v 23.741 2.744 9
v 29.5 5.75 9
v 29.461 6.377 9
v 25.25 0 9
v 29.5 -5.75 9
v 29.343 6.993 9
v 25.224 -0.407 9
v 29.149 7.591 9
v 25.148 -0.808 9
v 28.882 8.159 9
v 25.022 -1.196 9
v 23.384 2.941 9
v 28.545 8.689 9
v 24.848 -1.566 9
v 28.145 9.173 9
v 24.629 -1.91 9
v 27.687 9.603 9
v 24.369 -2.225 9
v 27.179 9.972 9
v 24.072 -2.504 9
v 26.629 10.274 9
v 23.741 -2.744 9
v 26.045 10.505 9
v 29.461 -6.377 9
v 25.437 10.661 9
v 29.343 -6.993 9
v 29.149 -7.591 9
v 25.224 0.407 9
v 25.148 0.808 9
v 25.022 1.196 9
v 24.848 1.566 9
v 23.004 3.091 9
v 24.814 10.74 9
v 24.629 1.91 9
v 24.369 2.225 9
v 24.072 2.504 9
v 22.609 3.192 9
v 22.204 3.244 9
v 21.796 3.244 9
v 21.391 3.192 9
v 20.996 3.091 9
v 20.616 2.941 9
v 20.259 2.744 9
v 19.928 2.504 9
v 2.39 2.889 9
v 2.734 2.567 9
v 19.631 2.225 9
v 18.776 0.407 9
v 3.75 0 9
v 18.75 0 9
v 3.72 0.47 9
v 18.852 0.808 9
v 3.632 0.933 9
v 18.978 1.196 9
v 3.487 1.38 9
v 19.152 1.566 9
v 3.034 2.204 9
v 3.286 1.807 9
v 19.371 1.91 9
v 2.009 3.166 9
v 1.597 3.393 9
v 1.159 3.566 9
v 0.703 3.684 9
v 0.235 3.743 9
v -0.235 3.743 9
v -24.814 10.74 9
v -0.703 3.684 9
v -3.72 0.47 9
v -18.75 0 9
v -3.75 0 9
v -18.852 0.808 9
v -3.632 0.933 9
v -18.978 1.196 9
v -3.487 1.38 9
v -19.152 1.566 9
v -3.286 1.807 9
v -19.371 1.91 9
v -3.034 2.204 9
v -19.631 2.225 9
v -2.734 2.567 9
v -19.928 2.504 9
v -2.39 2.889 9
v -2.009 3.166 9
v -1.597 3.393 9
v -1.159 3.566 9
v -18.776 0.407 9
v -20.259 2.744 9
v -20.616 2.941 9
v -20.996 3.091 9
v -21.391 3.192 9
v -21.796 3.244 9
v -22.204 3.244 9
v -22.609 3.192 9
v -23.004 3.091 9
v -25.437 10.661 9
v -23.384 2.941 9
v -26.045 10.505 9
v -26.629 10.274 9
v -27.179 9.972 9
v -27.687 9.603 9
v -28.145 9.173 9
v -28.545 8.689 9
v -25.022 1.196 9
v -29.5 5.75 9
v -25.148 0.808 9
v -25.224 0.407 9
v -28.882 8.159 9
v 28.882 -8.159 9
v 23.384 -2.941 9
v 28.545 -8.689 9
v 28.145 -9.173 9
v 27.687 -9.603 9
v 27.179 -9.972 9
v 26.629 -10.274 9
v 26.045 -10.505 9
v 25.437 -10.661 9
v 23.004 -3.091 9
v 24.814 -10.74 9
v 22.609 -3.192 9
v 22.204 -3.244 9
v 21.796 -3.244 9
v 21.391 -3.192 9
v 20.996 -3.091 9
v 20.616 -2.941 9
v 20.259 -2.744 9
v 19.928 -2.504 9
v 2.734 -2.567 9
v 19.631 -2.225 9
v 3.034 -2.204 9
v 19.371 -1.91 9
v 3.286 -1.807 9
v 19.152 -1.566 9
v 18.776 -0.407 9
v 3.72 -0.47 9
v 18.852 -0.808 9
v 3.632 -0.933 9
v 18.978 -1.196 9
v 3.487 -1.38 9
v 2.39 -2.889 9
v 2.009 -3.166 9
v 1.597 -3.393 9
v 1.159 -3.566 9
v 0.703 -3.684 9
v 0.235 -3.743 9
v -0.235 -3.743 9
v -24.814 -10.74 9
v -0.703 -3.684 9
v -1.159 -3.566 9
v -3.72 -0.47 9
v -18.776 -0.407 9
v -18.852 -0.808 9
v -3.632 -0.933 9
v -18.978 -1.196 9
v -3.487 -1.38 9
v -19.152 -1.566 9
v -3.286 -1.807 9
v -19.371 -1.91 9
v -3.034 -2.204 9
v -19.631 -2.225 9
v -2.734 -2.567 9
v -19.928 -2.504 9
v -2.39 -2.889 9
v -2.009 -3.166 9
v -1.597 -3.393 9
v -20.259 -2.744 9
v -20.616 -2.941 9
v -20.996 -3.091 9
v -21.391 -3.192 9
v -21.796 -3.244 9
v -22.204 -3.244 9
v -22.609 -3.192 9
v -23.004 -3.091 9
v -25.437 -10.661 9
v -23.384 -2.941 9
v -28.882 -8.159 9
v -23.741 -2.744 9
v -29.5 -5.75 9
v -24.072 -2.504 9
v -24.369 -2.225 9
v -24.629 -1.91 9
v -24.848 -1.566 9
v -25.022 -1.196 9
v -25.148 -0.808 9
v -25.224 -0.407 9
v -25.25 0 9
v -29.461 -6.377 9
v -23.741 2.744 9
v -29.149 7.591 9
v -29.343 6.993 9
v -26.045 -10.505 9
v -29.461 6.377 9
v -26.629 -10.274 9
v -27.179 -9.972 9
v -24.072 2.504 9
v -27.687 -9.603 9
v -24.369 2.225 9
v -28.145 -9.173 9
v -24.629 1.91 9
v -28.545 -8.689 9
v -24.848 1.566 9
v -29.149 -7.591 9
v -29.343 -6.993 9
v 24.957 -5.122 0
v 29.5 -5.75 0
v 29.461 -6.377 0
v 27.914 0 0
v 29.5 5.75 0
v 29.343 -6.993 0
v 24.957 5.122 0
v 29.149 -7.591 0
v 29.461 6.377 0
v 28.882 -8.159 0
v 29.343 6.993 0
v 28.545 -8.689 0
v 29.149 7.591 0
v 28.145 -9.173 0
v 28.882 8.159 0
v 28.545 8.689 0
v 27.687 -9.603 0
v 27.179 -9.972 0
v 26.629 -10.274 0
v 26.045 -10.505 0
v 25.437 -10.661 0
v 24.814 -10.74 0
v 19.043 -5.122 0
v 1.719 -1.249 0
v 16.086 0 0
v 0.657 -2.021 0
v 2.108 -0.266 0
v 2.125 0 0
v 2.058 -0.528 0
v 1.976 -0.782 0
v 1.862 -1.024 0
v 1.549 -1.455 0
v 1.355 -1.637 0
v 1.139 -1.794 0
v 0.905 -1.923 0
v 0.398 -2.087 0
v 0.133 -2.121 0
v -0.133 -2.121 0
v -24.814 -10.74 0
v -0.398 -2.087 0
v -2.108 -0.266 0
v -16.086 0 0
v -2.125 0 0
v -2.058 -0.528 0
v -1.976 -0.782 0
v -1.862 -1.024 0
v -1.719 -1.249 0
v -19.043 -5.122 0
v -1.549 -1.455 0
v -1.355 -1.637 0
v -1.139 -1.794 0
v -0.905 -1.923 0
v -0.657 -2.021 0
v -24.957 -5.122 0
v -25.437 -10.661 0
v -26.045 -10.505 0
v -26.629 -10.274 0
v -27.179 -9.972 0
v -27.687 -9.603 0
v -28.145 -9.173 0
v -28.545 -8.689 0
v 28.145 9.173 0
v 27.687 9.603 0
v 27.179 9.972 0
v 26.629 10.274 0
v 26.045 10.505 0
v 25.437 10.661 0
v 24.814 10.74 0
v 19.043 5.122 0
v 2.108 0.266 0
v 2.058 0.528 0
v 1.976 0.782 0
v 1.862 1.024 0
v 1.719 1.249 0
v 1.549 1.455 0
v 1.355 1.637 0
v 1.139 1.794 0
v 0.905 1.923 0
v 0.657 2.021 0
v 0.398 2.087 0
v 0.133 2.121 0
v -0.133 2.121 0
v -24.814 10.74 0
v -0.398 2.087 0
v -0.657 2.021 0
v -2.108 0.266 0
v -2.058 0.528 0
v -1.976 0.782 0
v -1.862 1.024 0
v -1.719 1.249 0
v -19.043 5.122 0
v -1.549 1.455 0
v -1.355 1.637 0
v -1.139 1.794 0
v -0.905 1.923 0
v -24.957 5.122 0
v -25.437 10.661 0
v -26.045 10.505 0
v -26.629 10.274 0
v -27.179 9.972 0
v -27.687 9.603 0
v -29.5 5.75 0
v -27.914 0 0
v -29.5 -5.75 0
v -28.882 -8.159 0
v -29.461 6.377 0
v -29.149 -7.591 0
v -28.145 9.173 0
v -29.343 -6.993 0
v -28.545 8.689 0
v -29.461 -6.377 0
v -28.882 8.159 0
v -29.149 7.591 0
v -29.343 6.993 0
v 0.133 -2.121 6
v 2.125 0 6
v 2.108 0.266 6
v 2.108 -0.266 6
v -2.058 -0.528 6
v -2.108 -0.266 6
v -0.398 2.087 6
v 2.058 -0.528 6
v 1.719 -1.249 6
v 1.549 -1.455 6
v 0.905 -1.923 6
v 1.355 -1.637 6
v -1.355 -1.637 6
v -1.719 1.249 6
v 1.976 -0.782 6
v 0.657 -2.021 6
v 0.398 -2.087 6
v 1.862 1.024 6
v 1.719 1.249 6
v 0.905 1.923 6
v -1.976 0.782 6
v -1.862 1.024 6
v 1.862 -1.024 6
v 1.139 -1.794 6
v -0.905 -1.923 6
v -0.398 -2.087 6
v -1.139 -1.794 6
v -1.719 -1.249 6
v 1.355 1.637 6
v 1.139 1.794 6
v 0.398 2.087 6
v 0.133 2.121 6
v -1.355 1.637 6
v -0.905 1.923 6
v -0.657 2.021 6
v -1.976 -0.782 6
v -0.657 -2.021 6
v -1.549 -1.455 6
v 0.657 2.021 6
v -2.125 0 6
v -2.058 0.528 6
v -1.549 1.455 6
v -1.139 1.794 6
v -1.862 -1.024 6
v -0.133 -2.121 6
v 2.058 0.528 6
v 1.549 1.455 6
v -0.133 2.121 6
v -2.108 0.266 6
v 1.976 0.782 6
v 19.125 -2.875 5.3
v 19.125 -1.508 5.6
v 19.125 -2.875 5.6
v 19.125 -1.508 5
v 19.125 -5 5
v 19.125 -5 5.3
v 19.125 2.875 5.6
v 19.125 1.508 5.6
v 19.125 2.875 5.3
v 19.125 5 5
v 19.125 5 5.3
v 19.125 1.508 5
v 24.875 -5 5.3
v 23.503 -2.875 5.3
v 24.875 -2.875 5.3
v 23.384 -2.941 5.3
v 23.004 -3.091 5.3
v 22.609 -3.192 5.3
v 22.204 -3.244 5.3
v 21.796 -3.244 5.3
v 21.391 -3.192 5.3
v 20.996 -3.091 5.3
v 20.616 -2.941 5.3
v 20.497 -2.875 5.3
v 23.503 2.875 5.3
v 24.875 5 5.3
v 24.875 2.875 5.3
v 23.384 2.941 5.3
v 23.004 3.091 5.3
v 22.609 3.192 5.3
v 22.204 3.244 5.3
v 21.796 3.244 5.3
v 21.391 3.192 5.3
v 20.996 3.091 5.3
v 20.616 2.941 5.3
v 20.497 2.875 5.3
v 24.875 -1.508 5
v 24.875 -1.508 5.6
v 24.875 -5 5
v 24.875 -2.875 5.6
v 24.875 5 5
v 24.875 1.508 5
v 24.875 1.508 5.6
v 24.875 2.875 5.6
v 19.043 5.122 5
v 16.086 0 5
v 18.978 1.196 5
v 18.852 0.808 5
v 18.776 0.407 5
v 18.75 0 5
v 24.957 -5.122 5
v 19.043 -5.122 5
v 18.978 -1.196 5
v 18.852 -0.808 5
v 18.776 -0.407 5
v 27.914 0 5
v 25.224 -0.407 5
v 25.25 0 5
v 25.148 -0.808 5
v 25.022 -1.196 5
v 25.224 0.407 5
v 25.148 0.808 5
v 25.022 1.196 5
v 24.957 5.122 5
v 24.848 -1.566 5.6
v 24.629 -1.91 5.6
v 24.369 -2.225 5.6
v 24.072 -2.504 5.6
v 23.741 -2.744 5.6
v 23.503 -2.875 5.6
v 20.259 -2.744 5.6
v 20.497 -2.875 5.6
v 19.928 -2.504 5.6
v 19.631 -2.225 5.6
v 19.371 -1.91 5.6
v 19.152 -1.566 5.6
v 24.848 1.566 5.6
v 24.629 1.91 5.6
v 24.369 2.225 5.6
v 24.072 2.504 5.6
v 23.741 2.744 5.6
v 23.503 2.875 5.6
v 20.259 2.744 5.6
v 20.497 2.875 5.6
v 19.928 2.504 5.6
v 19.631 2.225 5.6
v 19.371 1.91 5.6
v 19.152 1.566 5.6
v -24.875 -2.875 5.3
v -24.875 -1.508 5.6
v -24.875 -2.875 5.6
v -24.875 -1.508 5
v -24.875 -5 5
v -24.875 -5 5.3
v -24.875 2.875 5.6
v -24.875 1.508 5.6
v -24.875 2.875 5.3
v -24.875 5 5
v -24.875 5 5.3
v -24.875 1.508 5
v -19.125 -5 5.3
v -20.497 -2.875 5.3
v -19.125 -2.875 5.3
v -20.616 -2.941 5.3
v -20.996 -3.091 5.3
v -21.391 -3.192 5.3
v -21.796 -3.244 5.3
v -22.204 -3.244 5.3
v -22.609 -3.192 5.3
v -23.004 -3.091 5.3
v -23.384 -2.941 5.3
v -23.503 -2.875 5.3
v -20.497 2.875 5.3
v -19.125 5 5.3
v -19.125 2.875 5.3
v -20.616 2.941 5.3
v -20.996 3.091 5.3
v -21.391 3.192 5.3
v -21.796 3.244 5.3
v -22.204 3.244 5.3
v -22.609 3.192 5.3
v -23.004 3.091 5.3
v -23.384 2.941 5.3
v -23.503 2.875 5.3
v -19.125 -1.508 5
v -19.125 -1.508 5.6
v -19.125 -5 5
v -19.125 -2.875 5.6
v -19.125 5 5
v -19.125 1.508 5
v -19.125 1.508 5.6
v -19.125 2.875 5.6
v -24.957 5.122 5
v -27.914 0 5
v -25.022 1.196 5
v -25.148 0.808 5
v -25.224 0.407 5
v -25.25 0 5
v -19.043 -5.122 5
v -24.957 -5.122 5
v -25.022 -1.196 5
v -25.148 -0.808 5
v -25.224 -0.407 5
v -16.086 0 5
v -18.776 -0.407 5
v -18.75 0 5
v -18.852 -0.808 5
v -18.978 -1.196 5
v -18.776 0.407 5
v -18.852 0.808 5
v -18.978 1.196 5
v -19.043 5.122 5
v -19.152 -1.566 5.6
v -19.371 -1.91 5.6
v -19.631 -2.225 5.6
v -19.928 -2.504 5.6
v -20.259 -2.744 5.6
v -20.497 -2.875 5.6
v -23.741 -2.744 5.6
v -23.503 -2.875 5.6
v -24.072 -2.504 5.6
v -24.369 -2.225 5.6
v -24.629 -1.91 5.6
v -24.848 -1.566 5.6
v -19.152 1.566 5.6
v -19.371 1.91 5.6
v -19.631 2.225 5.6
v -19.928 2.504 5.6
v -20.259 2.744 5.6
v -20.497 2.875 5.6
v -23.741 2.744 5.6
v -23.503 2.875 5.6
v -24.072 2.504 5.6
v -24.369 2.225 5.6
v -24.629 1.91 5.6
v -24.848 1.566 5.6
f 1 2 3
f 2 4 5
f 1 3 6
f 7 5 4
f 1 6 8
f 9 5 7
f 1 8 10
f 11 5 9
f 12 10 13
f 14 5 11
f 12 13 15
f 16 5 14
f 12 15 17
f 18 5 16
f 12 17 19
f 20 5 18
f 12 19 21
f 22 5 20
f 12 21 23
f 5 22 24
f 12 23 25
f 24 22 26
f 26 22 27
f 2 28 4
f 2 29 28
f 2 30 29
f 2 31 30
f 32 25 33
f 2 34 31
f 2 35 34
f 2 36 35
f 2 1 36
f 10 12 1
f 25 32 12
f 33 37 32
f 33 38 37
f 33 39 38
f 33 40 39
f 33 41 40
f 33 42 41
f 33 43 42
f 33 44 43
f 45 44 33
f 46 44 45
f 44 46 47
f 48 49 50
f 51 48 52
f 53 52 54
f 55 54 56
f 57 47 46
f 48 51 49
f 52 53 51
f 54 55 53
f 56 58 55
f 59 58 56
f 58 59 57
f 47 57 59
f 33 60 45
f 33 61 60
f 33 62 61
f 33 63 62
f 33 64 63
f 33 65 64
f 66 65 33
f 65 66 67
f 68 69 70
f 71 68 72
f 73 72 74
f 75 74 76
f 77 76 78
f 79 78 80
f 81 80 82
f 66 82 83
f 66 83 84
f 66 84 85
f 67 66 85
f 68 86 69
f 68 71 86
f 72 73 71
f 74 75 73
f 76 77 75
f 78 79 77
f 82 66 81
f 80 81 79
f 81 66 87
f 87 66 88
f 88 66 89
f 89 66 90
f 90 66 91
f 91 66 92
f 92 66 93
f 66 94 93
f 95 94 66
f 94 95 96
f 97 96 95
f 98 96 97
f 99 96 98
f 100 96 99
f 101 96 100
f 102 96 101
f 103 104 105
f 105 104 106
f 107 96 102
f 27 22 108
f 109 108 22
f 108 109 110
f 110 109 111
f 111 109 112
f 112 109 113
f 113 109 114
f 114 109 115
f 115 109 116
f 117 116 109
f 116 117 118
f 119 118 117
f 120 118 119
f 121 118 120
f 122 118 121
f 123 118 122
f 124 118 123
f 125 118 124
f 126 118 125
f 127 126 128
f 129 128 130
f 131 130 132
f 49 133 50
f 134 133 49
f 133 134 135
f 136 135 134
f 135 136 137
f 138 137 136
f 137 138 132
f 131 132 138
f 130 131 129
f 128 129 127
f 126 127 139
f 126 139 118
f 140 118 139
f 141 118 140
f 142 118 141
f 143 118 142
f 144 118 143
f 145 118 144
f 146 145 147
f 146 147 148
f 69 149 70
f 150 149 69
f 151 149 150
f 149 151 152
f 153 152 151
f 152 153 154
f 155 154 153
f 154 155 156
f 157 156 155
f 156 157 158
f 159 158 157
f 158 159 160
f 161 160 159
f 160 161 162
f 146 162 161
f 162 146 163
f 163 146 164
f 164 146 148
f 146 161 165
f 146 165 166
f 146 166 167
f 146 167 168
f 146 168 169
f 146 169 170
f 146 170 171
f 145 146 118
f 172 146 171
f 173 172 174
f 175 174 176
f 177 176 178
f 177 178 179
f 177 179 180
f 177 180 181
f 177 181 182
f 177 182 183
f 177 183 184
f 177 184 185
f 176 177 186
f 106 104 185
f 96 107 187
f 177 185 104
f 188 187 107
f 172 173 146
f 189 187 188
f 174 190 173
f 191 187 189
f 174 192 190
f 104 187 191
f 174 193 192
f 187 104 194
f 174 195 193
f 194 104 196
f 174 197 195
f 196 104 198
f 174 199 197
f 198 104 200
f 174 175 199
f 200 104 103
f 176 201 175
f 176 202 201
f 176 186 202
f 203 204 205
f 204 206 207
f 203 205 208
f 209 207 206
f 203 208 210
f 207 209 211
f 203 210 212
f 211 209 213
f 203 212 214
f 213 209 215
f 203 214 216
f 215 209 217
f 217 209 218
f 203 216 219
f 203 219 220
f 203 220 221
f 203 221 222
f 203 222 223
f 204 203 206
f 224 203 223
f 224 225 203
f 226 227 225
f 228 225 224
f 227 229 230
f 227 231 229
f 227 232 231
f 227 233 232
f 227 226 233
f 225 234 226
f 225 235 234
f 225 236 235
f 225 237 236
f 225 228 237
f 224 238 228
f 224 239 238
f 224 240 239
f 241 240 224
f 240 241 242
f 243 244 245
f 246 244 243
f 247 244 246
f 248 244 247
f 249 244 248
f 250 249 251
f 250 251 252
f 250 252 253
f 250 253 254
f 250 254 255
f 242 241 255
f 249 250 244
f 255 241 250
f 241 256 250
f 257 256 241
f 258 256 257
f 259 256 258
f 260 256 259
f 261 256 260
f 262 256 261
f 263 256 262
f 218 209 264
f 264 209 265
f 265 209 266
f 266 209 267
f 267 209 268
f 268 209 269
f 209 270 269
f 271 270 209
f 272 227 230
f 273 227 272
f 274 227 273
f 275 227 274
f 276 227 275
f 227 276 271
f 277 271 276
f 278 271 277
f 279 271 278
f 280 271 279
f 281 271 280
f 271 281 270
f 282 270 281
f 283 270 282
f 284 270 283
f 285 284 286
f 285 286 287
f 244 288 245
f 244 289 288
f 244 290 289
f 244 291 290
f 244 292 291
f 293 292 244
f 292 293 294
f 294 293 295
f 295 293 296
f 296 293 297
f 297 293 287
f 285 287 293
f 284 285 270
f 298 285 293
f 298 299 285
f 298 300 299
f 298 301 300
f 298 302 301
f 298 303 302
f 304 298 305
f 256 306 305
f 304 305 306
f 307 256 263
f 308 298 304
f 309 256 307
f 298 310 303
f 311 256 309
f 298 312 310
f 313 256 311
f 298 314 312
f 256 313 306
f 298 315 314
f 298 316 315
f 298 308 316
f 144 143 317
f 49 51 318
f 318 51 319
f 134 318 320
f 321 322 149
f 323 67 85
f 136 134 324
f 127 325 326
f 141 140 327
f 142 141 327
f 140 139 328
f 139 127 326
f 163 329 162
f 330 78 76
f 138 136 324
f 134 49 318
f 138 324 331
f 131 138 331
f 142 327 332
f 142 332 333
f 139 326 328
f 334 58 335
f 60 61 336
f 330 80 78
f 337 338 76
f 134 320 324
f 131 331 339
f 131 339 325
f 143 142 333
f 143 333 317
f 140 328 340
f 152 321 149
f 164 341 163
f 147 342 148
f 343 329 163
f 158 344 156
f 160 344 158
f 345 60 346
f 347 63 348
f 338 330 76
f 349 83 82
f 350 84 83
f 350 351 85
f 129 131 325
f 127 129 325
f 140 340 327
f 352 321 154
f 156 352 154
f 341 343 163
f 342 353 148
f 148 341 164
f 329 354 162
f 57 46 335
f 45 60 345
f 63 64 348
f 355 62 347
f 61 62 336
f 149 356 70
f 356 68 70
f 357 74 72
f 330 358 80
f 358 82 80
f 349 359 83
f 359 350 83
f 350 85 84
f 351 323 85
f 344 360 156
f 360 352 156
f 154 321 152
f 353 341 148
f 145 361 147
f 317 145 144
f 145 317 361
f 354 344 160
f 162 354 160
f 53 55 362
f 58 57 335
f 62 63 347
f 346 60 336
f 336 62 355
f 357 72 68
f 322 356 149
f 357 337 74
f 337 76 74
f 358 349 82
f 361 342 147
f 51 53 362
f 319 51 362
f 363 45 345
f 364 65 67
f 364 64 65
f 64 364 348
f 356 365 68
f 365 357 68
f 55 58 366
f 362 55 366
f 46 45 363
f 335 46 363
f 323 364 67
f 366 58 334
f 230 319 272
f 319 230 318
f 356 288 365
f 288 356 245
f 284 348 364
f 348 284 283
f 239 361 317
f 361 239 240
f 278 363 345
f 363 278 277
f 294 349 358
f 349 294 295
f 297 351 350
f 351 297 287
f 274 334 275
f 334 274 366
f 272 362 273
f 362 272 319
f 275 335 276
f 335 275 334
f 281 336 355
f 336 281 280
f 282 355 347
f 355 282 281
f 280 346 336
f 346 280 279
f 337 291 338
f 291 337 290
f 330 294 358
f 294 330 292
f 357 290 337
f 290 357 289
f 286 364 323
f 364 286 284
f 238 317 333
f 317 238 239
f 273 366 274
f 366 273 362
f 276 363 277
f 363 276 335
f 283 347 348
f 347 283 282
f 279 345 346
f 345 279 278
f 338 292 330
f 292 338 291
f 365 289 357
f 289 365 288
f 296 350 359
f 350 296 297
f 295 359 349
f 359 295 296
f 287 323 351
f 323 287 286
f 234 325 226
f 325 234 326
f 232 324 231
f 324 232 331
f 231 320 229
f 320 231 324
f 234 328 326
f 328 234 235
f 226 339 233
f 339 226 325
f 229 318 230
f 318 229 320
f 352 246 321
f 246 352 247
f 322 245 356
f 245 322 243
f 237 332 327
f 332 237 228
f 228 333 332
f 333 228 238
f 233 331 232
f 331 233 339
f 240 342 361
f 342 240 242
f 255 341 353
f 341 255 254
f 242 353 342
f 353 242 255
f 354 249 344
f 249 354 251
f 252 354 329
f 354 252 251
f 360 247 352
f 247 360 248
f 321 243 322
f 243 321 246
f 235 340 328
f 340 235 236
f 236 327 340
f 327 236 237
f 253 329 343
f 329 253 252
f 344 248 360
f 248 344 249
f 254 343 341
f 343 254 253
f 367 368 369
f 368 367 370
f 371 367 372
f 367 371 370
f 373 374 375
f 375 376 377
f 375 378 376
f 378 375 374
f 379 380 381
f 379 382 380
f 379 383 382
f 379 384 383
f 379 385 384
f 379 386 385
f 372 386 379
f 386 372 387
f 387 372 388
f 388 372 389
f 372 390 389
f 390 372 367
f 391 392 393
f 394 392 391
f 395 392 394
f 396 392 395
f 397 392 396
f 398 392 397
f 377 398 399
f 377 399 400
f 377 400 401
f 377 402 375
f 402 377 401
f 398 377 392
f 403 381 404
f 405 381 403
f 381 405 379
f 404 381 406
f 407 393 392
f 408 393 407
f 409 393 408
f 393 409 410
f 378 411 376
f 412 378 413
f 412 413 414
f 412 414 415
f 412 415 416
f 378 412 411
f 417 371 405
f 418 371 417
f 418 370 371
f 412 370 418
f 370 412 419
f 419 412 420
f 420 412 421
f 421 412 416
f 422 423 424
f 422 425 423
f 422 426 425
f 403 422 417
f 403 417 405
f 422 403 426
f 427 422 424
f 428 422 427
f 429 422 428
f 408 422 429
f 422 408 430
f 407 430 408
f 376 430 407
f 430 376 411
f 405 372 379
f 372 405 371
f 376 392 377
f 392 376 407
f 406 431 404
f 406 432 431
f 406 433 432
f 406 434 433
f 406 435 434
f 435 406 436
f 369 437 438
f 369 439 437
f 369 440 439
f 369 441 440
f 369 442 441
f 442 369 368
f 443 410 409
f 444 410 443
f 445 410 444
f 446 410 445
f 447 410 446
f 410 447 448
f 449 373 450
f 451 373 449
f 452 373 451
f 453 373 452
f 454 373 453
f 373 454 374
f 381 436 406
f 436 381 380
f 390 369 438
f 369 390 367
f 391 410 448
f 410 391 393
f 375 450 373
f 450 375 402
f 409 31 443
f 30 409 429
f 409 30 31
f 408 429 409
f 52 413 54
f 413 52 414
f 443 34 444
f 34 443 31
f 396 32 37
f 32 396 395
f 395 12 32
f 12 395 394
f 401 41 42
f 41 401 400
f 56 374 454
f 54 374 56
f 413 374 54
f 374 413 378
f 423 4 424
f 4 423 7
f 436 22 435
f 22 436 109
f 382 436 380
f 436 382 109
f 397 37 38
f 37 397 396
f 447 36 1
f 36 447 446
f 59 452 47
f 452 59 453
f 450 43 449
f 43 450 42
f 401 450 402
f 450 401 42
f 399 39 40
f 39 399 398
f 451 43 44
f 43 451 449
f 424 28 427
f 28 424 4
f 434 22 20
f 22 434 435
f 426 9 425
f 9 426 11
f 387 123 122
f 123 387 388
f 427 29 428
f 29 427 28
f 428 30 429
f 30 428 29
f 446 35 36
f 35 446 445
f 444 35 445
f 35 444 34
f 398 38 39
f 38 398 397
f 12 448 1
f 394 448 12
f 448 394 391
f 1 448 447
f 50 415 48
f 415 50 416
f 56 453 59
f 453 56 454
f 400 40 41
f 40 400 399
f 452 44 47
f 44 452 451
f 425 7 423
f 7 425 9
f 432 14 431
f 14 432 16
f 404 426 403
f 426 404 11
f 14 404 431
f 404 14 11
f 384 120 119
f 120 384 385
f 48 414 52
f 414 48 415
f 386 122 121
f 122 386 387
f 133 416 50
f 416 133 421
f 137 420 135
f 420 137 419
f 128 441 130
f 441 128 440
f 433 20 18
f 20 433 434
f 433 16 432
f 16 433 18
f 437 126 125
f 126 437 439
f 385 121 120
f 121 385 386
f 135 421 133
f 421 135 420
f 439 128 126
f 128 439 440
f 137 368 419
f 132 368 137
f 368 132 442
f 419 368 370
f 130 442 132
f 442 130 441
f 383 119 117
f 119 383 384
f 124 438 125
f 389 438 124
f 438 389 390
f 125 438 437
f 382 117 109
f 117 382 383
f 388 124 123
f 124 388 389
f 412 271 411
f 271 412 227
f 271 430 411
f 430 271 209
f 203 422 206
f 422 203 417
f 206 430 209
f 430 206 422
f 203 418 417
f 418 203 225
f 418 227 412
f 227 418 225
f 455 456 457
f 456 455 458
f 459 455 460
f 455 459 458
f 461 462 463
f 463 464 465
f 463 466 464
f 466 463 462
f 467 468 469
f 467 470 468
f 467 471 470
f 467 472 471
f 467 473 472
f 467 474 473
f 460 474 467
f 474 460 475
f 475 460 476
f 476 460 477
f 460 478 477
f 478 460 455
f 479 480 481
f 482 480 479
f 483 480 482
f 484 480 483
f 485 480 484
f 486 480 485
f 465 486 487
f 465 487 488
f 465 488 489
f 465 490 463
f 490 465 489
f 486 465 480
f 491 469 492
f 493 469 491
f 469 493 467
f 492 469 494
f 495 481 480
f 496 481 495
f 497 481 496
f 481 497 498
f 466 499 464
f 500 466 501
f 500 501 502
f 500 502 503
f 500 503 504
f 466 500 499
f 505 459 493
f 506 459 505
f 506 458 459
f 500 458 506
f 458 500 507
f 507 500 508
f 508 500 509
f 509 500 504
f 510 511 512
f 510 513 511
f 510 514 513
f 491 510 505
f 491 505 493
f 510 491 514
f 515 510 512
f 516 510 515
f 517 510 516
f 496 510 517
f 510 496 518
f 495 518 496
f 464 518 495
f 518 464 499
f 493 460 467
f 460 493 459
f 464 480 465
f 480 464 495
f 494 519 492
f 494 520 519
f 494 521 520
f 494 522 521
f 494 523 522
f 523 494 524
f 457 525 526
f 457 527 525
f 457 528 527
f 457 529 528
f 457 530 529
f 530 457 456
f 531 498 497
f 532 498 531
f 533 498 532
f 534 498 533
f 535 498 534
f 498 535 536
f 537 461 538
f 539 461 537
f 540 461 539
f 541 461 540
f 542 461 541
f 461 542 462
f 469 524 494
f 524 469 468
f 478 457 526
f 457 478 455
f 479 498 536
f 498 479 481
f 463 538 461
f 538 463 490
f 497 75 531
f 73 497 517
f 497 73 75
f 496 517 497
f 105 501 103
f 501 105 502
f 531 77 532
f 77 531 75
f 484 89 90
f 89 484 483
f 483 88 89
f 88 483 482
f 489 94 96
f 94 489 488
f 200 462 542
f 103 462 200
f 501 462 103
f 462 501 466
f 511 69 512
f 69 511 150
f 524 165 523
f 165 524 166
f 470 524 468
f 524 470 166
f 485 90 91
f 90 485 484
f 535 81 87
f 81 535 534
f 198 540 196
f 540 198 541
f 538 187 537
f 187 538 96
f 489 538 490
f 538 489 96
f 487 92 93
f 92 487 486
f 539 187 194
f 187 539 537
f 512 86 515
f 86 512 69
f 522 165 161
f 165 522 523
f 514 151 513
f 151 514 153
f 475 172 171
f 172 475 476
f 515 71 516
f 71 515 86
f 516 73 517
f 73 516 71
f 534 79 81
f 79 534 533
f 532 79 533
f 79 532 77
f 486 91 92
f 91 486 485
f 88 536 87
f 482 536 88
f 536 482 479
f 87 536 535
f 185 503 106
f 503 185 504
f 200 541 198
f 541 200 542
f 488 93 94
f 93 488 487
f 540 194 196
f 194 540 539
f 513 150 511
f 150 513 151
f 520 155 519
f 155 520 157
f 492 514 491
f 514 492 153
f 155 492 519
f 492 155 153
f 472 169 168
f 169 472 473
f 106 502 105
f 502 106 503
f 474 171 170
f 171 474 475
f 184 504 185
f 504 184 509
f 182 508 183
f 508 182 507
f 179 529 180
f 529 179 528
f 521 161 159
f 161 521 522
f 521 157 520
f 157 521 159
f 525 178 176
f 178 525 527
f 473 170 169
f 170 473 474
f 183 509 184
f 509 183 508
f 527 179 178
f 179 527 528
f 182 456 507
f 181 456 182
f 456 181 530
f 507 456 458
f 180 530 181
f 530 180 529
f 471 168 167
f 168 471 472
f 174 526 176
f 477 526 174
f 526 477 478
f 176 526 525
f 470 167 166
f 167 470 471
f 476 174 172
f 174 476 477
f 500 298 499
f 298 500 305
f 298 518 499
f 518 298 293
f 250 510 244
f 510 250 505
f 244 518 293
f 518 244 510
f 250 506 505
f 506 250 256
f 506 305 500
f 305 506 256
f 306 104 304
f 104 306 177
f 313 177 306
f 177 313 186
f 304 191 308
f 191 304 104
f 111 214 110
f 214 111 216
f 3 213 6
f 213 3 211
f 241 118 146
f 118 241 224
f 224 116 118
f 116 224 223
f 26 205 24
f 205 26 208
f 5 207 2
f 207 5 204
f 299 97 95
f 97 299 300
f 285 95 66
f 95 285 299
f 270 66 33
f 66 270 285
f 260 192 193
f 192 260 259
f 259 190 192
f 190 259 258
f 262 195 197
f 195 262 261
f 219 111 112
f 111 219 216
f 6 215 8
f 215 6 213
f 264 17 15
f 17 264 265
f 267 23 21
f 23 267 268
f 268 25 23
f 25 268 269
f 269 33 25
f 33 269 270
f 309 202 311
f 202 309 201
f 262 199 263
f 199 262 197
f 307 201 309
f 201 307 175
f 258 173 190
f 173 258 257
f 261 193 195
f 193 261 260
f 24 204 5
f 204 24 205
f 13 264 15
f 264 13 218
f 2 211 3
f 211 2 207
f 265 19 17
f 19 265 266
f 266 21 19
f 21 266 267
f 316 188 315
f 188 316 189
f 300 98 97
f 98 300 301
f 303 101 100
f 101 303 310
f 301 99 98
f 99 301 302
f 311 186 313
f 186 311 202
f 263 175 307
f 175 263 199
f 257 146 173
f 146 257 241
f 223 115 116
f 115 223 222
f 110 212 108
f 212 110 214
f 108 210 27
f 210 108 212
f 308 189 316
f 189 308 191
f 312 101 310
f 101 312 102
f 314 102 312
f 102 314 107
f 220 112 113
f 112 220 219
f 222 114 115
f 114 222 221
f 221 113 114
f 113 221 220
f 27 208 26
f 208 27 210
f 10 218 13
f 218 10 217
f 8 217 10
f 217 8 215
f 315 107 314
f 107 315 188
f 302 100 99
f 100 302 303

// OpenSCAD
$fn = 50;


difference() {
	union() {
		hull() {
			translate(v = [-24.5000000000, 5.7500000000, 0]) {
				cylinder(h = 9, r = 5);
			}
			translate(v = [24.5000000000, 5.7500000000, 0]) {
				cylinder(h = 9, r = 5);
			}
			translate(v = [-24.5000000000, -5.7500000000, 0]) {
				cylinder(h = 9, r = 5);
			}
			translate(v = [24.5000000000, -5.7500000000, 0]) {
				cylinder(h = 9, r = 5);
			}
		}
	}
	union() {
		translate(v = [0, 0, 9]) {
			rotate(a = [0, 0, 0]) {
				difference() {
					union() {
						#translate(v = [0, 0, -9.0000000000]) {
							cylinder(h = 9, r = 2.0000000000);
						}
						#translate(v = [0, 0, -3]) {
							cylinder(h = 3, r1 = 2.1250000000, r2 = 3.7500000000);
						}
						#translate(v = [0, 0, -9.0000000000]) {
							cylinder(h = 9, r = 2.1250000000);
						}
						#translate(v = [0, 0, -9.0000000000]) {
							cylinder(h = 9, r = 2.0000000000);
						}
					}
					union();
				}
			}
		}
		translate(v = [22.0000000000, 0, 0]) {
			rotate(a = [0, 0, 0]) {
				difference() {
					union() {
						#translate(v = [-2.8750000000, -5.0000000000, -0.3000000000]) {
							cube(size = [5.7500000000, 10, 0.3000000000]);
						}
						#translate(v = [-2.8750000000, -2.8750000000, -0.6000000000]) {
							cube(size = [5.7500000000, 5.7500000000, 0.3000000000]);
						}
						#translate(v = [-2.8750000000, -5.0000000000, 5]) {
							cube(size = [5.7500000000, 10, 0.3000000000]);
						}
						#translate(v = [-2.8750000000, -2.8750000000, 5.3000000000]) {
							cube(size = [5.7500000000, 5.7500000000, 0.3000000000]);
						}
						#translate(v = [0, 0, -100.0000000000]) {
							cylinder(h = 200, r = 3.2500000000);
						}
						#linear_extrude(height = 5) {
							polygon(points = [[5.9142500000, 0.0000000000], [2.9571250000, 5.1218907443], [-2.9571250000, 5.1218907443], [-5.9142500000, 0.0000000000], [-2.9571250000, -5.1218907443], [2.9571250000, -5.1218907443]]);
						}
						#translate(v = [-2.8750000000, -5.0000000000, -0.3000000000]) {
							cube(size = [5.7500000000, 10, 0.3000000000]);
						}
						#translate(v = [-2.8750000000, -2.8750000000, -0.6000000000]) {
							cube(size = [5.7500000000, 5.7500000000, 0.3000000000]);
						}
						#translate(v = [-2.8750000000, -5.0000000000, 5]) {
							cube(size = [5.7500000000, 10, 0.3000000000]);
						}
						#translate(v = [-2.8750000000, -2.8750000000, 5.3000000000]) {
							cube(size = [5.7500000000, 5.7500000000, 0.3000000000]);
						}
						#translate(v = [0, 0, -100.0000000000]) {
							cylinder(h = 200, r = 3.2500000000);
						}
						#translate(v = [-2.8750000000, -5.0000000000, -0.3000000000]) {
							cube(size = [5.7500000000, 10, 0.3000000000]);
						}
						#translate(v = [-2.8750000000, -2.8750000000, -0.6000000000]) {
							cube(size = [5.7500000000, 5.7500000000, 0.3000000000]);
						}
						#translate(v = [-2.8750000000, -5.0000000000, 5]) {
							cube(size = [5.7500000000, 10, 0.3000000000]);
						}
						#translate(v = [-2.8750000000, -2.8750000000, 5.3000000000]) {
							cube(size = [5.7500000000, 5.7500000000, 0.3000000000]);
						}
						#translate(v = [0, 0, -100.0000000000]) {
							cylinder(h = 200, r = 3.2500000000);
						}
					}
					union();
				}
			}
		}
		translate(v = [-22.0000000000, 0, 0]) {
			rotate(a = [0, 0, 0]) {
				difference() {
					union() {
						#translate(v = [-2.8750000000, -5.0000000000, -0.3000000000]) {
							cube(size = [5.7500000000, 10, 0.3000000000]);
						}
						#translate(v = [-2.8750000000, -2.8750000000, -0.6000000000]) {
							cube(size = [5.7500000000, 5.7500000000, 0.3000000000]);
						}
						#translate(v = [-2.8750000000, -5.0000000000, 5]) {
							cube(size = [5.7500000000, 10, 0.3000000000]);
						}
						#translate(v = [-2.8750000000, -2.8750000000, 5.3000000000]) {
							cube(size = [5.7500000000, 5.7500000000, 0.3000000000]);
						}
						#translate(v = [0, 0, -100.0000000000]) {
							cylinder(h = 200, r = 3.2500000000);
						}
						#linear_extrude(height = 5) {
							polygon(points = [[5.9142500000, 0.0000000000], [2.9571250000, 5.1218907443], [-2.9571250000, 5.1218907443], [-5.9142500000, 0.0000000000], [-2.9571250000, -5.1218907443], [2.9571250000, -5.1218907443]]);
						}
						#translate(v = [-2.8750000000, -5.0000000000, -0.3000000000]) {
							cube(size = [5.7500000000, 10, 0.3000000000]);
						}
						#translate(v = [-2.8750000000, -2.8750000000, -0.6000000000]) {
							cube(size = [5.7500000000, 5.7500000000, 0.3000000000]);
						}
						#translate(v = [-2.8750000000, -5.0000000000, 5]) {
							cube(size = [5.7500000000, 10, 0.3000000000]);
						}
						#translate(v = [-2.8750000000, -2.8750000000, 5.3000000000]) {
							cube(size = [5.7500000000, 5.7500000000, 0.3000000000]);
						}
						#translate(v = [0, 0, -100.0000000000]) {
							cylinder(h = 200, r = 3.2500000000);
						}
						#translate(v = [-2.8750000000, -5.0000000000, -0.3000000000]) {
							cube(size = [5.7500000000, 10, 0.3000000000]);
						}
						#translate(v = [-2.8750000000, -2.8750000000, -0.6000000000]) {
							cube(size = [5.7500000000, 5.7500000000, 0.3000000000]);
						}
						#translate(v = [-2.8750000000, -5.0000000000, 5]) {
							cube(size = [5.7500000000, 10, 0.3000000000]);
						}
						#translate(v = [-2.8750000000, -2.8750000000, 5.3000000000]) {
							cube(size = [5.7500000000, 5.7500000000, 0.3000000000]);
						}
						#translate(v = [0, 0, -100.0000000000]) {
							cylinder(h = 200, r = 3.2500000000);
						}
					}
					union();
				}
			}
		}
	}
}
